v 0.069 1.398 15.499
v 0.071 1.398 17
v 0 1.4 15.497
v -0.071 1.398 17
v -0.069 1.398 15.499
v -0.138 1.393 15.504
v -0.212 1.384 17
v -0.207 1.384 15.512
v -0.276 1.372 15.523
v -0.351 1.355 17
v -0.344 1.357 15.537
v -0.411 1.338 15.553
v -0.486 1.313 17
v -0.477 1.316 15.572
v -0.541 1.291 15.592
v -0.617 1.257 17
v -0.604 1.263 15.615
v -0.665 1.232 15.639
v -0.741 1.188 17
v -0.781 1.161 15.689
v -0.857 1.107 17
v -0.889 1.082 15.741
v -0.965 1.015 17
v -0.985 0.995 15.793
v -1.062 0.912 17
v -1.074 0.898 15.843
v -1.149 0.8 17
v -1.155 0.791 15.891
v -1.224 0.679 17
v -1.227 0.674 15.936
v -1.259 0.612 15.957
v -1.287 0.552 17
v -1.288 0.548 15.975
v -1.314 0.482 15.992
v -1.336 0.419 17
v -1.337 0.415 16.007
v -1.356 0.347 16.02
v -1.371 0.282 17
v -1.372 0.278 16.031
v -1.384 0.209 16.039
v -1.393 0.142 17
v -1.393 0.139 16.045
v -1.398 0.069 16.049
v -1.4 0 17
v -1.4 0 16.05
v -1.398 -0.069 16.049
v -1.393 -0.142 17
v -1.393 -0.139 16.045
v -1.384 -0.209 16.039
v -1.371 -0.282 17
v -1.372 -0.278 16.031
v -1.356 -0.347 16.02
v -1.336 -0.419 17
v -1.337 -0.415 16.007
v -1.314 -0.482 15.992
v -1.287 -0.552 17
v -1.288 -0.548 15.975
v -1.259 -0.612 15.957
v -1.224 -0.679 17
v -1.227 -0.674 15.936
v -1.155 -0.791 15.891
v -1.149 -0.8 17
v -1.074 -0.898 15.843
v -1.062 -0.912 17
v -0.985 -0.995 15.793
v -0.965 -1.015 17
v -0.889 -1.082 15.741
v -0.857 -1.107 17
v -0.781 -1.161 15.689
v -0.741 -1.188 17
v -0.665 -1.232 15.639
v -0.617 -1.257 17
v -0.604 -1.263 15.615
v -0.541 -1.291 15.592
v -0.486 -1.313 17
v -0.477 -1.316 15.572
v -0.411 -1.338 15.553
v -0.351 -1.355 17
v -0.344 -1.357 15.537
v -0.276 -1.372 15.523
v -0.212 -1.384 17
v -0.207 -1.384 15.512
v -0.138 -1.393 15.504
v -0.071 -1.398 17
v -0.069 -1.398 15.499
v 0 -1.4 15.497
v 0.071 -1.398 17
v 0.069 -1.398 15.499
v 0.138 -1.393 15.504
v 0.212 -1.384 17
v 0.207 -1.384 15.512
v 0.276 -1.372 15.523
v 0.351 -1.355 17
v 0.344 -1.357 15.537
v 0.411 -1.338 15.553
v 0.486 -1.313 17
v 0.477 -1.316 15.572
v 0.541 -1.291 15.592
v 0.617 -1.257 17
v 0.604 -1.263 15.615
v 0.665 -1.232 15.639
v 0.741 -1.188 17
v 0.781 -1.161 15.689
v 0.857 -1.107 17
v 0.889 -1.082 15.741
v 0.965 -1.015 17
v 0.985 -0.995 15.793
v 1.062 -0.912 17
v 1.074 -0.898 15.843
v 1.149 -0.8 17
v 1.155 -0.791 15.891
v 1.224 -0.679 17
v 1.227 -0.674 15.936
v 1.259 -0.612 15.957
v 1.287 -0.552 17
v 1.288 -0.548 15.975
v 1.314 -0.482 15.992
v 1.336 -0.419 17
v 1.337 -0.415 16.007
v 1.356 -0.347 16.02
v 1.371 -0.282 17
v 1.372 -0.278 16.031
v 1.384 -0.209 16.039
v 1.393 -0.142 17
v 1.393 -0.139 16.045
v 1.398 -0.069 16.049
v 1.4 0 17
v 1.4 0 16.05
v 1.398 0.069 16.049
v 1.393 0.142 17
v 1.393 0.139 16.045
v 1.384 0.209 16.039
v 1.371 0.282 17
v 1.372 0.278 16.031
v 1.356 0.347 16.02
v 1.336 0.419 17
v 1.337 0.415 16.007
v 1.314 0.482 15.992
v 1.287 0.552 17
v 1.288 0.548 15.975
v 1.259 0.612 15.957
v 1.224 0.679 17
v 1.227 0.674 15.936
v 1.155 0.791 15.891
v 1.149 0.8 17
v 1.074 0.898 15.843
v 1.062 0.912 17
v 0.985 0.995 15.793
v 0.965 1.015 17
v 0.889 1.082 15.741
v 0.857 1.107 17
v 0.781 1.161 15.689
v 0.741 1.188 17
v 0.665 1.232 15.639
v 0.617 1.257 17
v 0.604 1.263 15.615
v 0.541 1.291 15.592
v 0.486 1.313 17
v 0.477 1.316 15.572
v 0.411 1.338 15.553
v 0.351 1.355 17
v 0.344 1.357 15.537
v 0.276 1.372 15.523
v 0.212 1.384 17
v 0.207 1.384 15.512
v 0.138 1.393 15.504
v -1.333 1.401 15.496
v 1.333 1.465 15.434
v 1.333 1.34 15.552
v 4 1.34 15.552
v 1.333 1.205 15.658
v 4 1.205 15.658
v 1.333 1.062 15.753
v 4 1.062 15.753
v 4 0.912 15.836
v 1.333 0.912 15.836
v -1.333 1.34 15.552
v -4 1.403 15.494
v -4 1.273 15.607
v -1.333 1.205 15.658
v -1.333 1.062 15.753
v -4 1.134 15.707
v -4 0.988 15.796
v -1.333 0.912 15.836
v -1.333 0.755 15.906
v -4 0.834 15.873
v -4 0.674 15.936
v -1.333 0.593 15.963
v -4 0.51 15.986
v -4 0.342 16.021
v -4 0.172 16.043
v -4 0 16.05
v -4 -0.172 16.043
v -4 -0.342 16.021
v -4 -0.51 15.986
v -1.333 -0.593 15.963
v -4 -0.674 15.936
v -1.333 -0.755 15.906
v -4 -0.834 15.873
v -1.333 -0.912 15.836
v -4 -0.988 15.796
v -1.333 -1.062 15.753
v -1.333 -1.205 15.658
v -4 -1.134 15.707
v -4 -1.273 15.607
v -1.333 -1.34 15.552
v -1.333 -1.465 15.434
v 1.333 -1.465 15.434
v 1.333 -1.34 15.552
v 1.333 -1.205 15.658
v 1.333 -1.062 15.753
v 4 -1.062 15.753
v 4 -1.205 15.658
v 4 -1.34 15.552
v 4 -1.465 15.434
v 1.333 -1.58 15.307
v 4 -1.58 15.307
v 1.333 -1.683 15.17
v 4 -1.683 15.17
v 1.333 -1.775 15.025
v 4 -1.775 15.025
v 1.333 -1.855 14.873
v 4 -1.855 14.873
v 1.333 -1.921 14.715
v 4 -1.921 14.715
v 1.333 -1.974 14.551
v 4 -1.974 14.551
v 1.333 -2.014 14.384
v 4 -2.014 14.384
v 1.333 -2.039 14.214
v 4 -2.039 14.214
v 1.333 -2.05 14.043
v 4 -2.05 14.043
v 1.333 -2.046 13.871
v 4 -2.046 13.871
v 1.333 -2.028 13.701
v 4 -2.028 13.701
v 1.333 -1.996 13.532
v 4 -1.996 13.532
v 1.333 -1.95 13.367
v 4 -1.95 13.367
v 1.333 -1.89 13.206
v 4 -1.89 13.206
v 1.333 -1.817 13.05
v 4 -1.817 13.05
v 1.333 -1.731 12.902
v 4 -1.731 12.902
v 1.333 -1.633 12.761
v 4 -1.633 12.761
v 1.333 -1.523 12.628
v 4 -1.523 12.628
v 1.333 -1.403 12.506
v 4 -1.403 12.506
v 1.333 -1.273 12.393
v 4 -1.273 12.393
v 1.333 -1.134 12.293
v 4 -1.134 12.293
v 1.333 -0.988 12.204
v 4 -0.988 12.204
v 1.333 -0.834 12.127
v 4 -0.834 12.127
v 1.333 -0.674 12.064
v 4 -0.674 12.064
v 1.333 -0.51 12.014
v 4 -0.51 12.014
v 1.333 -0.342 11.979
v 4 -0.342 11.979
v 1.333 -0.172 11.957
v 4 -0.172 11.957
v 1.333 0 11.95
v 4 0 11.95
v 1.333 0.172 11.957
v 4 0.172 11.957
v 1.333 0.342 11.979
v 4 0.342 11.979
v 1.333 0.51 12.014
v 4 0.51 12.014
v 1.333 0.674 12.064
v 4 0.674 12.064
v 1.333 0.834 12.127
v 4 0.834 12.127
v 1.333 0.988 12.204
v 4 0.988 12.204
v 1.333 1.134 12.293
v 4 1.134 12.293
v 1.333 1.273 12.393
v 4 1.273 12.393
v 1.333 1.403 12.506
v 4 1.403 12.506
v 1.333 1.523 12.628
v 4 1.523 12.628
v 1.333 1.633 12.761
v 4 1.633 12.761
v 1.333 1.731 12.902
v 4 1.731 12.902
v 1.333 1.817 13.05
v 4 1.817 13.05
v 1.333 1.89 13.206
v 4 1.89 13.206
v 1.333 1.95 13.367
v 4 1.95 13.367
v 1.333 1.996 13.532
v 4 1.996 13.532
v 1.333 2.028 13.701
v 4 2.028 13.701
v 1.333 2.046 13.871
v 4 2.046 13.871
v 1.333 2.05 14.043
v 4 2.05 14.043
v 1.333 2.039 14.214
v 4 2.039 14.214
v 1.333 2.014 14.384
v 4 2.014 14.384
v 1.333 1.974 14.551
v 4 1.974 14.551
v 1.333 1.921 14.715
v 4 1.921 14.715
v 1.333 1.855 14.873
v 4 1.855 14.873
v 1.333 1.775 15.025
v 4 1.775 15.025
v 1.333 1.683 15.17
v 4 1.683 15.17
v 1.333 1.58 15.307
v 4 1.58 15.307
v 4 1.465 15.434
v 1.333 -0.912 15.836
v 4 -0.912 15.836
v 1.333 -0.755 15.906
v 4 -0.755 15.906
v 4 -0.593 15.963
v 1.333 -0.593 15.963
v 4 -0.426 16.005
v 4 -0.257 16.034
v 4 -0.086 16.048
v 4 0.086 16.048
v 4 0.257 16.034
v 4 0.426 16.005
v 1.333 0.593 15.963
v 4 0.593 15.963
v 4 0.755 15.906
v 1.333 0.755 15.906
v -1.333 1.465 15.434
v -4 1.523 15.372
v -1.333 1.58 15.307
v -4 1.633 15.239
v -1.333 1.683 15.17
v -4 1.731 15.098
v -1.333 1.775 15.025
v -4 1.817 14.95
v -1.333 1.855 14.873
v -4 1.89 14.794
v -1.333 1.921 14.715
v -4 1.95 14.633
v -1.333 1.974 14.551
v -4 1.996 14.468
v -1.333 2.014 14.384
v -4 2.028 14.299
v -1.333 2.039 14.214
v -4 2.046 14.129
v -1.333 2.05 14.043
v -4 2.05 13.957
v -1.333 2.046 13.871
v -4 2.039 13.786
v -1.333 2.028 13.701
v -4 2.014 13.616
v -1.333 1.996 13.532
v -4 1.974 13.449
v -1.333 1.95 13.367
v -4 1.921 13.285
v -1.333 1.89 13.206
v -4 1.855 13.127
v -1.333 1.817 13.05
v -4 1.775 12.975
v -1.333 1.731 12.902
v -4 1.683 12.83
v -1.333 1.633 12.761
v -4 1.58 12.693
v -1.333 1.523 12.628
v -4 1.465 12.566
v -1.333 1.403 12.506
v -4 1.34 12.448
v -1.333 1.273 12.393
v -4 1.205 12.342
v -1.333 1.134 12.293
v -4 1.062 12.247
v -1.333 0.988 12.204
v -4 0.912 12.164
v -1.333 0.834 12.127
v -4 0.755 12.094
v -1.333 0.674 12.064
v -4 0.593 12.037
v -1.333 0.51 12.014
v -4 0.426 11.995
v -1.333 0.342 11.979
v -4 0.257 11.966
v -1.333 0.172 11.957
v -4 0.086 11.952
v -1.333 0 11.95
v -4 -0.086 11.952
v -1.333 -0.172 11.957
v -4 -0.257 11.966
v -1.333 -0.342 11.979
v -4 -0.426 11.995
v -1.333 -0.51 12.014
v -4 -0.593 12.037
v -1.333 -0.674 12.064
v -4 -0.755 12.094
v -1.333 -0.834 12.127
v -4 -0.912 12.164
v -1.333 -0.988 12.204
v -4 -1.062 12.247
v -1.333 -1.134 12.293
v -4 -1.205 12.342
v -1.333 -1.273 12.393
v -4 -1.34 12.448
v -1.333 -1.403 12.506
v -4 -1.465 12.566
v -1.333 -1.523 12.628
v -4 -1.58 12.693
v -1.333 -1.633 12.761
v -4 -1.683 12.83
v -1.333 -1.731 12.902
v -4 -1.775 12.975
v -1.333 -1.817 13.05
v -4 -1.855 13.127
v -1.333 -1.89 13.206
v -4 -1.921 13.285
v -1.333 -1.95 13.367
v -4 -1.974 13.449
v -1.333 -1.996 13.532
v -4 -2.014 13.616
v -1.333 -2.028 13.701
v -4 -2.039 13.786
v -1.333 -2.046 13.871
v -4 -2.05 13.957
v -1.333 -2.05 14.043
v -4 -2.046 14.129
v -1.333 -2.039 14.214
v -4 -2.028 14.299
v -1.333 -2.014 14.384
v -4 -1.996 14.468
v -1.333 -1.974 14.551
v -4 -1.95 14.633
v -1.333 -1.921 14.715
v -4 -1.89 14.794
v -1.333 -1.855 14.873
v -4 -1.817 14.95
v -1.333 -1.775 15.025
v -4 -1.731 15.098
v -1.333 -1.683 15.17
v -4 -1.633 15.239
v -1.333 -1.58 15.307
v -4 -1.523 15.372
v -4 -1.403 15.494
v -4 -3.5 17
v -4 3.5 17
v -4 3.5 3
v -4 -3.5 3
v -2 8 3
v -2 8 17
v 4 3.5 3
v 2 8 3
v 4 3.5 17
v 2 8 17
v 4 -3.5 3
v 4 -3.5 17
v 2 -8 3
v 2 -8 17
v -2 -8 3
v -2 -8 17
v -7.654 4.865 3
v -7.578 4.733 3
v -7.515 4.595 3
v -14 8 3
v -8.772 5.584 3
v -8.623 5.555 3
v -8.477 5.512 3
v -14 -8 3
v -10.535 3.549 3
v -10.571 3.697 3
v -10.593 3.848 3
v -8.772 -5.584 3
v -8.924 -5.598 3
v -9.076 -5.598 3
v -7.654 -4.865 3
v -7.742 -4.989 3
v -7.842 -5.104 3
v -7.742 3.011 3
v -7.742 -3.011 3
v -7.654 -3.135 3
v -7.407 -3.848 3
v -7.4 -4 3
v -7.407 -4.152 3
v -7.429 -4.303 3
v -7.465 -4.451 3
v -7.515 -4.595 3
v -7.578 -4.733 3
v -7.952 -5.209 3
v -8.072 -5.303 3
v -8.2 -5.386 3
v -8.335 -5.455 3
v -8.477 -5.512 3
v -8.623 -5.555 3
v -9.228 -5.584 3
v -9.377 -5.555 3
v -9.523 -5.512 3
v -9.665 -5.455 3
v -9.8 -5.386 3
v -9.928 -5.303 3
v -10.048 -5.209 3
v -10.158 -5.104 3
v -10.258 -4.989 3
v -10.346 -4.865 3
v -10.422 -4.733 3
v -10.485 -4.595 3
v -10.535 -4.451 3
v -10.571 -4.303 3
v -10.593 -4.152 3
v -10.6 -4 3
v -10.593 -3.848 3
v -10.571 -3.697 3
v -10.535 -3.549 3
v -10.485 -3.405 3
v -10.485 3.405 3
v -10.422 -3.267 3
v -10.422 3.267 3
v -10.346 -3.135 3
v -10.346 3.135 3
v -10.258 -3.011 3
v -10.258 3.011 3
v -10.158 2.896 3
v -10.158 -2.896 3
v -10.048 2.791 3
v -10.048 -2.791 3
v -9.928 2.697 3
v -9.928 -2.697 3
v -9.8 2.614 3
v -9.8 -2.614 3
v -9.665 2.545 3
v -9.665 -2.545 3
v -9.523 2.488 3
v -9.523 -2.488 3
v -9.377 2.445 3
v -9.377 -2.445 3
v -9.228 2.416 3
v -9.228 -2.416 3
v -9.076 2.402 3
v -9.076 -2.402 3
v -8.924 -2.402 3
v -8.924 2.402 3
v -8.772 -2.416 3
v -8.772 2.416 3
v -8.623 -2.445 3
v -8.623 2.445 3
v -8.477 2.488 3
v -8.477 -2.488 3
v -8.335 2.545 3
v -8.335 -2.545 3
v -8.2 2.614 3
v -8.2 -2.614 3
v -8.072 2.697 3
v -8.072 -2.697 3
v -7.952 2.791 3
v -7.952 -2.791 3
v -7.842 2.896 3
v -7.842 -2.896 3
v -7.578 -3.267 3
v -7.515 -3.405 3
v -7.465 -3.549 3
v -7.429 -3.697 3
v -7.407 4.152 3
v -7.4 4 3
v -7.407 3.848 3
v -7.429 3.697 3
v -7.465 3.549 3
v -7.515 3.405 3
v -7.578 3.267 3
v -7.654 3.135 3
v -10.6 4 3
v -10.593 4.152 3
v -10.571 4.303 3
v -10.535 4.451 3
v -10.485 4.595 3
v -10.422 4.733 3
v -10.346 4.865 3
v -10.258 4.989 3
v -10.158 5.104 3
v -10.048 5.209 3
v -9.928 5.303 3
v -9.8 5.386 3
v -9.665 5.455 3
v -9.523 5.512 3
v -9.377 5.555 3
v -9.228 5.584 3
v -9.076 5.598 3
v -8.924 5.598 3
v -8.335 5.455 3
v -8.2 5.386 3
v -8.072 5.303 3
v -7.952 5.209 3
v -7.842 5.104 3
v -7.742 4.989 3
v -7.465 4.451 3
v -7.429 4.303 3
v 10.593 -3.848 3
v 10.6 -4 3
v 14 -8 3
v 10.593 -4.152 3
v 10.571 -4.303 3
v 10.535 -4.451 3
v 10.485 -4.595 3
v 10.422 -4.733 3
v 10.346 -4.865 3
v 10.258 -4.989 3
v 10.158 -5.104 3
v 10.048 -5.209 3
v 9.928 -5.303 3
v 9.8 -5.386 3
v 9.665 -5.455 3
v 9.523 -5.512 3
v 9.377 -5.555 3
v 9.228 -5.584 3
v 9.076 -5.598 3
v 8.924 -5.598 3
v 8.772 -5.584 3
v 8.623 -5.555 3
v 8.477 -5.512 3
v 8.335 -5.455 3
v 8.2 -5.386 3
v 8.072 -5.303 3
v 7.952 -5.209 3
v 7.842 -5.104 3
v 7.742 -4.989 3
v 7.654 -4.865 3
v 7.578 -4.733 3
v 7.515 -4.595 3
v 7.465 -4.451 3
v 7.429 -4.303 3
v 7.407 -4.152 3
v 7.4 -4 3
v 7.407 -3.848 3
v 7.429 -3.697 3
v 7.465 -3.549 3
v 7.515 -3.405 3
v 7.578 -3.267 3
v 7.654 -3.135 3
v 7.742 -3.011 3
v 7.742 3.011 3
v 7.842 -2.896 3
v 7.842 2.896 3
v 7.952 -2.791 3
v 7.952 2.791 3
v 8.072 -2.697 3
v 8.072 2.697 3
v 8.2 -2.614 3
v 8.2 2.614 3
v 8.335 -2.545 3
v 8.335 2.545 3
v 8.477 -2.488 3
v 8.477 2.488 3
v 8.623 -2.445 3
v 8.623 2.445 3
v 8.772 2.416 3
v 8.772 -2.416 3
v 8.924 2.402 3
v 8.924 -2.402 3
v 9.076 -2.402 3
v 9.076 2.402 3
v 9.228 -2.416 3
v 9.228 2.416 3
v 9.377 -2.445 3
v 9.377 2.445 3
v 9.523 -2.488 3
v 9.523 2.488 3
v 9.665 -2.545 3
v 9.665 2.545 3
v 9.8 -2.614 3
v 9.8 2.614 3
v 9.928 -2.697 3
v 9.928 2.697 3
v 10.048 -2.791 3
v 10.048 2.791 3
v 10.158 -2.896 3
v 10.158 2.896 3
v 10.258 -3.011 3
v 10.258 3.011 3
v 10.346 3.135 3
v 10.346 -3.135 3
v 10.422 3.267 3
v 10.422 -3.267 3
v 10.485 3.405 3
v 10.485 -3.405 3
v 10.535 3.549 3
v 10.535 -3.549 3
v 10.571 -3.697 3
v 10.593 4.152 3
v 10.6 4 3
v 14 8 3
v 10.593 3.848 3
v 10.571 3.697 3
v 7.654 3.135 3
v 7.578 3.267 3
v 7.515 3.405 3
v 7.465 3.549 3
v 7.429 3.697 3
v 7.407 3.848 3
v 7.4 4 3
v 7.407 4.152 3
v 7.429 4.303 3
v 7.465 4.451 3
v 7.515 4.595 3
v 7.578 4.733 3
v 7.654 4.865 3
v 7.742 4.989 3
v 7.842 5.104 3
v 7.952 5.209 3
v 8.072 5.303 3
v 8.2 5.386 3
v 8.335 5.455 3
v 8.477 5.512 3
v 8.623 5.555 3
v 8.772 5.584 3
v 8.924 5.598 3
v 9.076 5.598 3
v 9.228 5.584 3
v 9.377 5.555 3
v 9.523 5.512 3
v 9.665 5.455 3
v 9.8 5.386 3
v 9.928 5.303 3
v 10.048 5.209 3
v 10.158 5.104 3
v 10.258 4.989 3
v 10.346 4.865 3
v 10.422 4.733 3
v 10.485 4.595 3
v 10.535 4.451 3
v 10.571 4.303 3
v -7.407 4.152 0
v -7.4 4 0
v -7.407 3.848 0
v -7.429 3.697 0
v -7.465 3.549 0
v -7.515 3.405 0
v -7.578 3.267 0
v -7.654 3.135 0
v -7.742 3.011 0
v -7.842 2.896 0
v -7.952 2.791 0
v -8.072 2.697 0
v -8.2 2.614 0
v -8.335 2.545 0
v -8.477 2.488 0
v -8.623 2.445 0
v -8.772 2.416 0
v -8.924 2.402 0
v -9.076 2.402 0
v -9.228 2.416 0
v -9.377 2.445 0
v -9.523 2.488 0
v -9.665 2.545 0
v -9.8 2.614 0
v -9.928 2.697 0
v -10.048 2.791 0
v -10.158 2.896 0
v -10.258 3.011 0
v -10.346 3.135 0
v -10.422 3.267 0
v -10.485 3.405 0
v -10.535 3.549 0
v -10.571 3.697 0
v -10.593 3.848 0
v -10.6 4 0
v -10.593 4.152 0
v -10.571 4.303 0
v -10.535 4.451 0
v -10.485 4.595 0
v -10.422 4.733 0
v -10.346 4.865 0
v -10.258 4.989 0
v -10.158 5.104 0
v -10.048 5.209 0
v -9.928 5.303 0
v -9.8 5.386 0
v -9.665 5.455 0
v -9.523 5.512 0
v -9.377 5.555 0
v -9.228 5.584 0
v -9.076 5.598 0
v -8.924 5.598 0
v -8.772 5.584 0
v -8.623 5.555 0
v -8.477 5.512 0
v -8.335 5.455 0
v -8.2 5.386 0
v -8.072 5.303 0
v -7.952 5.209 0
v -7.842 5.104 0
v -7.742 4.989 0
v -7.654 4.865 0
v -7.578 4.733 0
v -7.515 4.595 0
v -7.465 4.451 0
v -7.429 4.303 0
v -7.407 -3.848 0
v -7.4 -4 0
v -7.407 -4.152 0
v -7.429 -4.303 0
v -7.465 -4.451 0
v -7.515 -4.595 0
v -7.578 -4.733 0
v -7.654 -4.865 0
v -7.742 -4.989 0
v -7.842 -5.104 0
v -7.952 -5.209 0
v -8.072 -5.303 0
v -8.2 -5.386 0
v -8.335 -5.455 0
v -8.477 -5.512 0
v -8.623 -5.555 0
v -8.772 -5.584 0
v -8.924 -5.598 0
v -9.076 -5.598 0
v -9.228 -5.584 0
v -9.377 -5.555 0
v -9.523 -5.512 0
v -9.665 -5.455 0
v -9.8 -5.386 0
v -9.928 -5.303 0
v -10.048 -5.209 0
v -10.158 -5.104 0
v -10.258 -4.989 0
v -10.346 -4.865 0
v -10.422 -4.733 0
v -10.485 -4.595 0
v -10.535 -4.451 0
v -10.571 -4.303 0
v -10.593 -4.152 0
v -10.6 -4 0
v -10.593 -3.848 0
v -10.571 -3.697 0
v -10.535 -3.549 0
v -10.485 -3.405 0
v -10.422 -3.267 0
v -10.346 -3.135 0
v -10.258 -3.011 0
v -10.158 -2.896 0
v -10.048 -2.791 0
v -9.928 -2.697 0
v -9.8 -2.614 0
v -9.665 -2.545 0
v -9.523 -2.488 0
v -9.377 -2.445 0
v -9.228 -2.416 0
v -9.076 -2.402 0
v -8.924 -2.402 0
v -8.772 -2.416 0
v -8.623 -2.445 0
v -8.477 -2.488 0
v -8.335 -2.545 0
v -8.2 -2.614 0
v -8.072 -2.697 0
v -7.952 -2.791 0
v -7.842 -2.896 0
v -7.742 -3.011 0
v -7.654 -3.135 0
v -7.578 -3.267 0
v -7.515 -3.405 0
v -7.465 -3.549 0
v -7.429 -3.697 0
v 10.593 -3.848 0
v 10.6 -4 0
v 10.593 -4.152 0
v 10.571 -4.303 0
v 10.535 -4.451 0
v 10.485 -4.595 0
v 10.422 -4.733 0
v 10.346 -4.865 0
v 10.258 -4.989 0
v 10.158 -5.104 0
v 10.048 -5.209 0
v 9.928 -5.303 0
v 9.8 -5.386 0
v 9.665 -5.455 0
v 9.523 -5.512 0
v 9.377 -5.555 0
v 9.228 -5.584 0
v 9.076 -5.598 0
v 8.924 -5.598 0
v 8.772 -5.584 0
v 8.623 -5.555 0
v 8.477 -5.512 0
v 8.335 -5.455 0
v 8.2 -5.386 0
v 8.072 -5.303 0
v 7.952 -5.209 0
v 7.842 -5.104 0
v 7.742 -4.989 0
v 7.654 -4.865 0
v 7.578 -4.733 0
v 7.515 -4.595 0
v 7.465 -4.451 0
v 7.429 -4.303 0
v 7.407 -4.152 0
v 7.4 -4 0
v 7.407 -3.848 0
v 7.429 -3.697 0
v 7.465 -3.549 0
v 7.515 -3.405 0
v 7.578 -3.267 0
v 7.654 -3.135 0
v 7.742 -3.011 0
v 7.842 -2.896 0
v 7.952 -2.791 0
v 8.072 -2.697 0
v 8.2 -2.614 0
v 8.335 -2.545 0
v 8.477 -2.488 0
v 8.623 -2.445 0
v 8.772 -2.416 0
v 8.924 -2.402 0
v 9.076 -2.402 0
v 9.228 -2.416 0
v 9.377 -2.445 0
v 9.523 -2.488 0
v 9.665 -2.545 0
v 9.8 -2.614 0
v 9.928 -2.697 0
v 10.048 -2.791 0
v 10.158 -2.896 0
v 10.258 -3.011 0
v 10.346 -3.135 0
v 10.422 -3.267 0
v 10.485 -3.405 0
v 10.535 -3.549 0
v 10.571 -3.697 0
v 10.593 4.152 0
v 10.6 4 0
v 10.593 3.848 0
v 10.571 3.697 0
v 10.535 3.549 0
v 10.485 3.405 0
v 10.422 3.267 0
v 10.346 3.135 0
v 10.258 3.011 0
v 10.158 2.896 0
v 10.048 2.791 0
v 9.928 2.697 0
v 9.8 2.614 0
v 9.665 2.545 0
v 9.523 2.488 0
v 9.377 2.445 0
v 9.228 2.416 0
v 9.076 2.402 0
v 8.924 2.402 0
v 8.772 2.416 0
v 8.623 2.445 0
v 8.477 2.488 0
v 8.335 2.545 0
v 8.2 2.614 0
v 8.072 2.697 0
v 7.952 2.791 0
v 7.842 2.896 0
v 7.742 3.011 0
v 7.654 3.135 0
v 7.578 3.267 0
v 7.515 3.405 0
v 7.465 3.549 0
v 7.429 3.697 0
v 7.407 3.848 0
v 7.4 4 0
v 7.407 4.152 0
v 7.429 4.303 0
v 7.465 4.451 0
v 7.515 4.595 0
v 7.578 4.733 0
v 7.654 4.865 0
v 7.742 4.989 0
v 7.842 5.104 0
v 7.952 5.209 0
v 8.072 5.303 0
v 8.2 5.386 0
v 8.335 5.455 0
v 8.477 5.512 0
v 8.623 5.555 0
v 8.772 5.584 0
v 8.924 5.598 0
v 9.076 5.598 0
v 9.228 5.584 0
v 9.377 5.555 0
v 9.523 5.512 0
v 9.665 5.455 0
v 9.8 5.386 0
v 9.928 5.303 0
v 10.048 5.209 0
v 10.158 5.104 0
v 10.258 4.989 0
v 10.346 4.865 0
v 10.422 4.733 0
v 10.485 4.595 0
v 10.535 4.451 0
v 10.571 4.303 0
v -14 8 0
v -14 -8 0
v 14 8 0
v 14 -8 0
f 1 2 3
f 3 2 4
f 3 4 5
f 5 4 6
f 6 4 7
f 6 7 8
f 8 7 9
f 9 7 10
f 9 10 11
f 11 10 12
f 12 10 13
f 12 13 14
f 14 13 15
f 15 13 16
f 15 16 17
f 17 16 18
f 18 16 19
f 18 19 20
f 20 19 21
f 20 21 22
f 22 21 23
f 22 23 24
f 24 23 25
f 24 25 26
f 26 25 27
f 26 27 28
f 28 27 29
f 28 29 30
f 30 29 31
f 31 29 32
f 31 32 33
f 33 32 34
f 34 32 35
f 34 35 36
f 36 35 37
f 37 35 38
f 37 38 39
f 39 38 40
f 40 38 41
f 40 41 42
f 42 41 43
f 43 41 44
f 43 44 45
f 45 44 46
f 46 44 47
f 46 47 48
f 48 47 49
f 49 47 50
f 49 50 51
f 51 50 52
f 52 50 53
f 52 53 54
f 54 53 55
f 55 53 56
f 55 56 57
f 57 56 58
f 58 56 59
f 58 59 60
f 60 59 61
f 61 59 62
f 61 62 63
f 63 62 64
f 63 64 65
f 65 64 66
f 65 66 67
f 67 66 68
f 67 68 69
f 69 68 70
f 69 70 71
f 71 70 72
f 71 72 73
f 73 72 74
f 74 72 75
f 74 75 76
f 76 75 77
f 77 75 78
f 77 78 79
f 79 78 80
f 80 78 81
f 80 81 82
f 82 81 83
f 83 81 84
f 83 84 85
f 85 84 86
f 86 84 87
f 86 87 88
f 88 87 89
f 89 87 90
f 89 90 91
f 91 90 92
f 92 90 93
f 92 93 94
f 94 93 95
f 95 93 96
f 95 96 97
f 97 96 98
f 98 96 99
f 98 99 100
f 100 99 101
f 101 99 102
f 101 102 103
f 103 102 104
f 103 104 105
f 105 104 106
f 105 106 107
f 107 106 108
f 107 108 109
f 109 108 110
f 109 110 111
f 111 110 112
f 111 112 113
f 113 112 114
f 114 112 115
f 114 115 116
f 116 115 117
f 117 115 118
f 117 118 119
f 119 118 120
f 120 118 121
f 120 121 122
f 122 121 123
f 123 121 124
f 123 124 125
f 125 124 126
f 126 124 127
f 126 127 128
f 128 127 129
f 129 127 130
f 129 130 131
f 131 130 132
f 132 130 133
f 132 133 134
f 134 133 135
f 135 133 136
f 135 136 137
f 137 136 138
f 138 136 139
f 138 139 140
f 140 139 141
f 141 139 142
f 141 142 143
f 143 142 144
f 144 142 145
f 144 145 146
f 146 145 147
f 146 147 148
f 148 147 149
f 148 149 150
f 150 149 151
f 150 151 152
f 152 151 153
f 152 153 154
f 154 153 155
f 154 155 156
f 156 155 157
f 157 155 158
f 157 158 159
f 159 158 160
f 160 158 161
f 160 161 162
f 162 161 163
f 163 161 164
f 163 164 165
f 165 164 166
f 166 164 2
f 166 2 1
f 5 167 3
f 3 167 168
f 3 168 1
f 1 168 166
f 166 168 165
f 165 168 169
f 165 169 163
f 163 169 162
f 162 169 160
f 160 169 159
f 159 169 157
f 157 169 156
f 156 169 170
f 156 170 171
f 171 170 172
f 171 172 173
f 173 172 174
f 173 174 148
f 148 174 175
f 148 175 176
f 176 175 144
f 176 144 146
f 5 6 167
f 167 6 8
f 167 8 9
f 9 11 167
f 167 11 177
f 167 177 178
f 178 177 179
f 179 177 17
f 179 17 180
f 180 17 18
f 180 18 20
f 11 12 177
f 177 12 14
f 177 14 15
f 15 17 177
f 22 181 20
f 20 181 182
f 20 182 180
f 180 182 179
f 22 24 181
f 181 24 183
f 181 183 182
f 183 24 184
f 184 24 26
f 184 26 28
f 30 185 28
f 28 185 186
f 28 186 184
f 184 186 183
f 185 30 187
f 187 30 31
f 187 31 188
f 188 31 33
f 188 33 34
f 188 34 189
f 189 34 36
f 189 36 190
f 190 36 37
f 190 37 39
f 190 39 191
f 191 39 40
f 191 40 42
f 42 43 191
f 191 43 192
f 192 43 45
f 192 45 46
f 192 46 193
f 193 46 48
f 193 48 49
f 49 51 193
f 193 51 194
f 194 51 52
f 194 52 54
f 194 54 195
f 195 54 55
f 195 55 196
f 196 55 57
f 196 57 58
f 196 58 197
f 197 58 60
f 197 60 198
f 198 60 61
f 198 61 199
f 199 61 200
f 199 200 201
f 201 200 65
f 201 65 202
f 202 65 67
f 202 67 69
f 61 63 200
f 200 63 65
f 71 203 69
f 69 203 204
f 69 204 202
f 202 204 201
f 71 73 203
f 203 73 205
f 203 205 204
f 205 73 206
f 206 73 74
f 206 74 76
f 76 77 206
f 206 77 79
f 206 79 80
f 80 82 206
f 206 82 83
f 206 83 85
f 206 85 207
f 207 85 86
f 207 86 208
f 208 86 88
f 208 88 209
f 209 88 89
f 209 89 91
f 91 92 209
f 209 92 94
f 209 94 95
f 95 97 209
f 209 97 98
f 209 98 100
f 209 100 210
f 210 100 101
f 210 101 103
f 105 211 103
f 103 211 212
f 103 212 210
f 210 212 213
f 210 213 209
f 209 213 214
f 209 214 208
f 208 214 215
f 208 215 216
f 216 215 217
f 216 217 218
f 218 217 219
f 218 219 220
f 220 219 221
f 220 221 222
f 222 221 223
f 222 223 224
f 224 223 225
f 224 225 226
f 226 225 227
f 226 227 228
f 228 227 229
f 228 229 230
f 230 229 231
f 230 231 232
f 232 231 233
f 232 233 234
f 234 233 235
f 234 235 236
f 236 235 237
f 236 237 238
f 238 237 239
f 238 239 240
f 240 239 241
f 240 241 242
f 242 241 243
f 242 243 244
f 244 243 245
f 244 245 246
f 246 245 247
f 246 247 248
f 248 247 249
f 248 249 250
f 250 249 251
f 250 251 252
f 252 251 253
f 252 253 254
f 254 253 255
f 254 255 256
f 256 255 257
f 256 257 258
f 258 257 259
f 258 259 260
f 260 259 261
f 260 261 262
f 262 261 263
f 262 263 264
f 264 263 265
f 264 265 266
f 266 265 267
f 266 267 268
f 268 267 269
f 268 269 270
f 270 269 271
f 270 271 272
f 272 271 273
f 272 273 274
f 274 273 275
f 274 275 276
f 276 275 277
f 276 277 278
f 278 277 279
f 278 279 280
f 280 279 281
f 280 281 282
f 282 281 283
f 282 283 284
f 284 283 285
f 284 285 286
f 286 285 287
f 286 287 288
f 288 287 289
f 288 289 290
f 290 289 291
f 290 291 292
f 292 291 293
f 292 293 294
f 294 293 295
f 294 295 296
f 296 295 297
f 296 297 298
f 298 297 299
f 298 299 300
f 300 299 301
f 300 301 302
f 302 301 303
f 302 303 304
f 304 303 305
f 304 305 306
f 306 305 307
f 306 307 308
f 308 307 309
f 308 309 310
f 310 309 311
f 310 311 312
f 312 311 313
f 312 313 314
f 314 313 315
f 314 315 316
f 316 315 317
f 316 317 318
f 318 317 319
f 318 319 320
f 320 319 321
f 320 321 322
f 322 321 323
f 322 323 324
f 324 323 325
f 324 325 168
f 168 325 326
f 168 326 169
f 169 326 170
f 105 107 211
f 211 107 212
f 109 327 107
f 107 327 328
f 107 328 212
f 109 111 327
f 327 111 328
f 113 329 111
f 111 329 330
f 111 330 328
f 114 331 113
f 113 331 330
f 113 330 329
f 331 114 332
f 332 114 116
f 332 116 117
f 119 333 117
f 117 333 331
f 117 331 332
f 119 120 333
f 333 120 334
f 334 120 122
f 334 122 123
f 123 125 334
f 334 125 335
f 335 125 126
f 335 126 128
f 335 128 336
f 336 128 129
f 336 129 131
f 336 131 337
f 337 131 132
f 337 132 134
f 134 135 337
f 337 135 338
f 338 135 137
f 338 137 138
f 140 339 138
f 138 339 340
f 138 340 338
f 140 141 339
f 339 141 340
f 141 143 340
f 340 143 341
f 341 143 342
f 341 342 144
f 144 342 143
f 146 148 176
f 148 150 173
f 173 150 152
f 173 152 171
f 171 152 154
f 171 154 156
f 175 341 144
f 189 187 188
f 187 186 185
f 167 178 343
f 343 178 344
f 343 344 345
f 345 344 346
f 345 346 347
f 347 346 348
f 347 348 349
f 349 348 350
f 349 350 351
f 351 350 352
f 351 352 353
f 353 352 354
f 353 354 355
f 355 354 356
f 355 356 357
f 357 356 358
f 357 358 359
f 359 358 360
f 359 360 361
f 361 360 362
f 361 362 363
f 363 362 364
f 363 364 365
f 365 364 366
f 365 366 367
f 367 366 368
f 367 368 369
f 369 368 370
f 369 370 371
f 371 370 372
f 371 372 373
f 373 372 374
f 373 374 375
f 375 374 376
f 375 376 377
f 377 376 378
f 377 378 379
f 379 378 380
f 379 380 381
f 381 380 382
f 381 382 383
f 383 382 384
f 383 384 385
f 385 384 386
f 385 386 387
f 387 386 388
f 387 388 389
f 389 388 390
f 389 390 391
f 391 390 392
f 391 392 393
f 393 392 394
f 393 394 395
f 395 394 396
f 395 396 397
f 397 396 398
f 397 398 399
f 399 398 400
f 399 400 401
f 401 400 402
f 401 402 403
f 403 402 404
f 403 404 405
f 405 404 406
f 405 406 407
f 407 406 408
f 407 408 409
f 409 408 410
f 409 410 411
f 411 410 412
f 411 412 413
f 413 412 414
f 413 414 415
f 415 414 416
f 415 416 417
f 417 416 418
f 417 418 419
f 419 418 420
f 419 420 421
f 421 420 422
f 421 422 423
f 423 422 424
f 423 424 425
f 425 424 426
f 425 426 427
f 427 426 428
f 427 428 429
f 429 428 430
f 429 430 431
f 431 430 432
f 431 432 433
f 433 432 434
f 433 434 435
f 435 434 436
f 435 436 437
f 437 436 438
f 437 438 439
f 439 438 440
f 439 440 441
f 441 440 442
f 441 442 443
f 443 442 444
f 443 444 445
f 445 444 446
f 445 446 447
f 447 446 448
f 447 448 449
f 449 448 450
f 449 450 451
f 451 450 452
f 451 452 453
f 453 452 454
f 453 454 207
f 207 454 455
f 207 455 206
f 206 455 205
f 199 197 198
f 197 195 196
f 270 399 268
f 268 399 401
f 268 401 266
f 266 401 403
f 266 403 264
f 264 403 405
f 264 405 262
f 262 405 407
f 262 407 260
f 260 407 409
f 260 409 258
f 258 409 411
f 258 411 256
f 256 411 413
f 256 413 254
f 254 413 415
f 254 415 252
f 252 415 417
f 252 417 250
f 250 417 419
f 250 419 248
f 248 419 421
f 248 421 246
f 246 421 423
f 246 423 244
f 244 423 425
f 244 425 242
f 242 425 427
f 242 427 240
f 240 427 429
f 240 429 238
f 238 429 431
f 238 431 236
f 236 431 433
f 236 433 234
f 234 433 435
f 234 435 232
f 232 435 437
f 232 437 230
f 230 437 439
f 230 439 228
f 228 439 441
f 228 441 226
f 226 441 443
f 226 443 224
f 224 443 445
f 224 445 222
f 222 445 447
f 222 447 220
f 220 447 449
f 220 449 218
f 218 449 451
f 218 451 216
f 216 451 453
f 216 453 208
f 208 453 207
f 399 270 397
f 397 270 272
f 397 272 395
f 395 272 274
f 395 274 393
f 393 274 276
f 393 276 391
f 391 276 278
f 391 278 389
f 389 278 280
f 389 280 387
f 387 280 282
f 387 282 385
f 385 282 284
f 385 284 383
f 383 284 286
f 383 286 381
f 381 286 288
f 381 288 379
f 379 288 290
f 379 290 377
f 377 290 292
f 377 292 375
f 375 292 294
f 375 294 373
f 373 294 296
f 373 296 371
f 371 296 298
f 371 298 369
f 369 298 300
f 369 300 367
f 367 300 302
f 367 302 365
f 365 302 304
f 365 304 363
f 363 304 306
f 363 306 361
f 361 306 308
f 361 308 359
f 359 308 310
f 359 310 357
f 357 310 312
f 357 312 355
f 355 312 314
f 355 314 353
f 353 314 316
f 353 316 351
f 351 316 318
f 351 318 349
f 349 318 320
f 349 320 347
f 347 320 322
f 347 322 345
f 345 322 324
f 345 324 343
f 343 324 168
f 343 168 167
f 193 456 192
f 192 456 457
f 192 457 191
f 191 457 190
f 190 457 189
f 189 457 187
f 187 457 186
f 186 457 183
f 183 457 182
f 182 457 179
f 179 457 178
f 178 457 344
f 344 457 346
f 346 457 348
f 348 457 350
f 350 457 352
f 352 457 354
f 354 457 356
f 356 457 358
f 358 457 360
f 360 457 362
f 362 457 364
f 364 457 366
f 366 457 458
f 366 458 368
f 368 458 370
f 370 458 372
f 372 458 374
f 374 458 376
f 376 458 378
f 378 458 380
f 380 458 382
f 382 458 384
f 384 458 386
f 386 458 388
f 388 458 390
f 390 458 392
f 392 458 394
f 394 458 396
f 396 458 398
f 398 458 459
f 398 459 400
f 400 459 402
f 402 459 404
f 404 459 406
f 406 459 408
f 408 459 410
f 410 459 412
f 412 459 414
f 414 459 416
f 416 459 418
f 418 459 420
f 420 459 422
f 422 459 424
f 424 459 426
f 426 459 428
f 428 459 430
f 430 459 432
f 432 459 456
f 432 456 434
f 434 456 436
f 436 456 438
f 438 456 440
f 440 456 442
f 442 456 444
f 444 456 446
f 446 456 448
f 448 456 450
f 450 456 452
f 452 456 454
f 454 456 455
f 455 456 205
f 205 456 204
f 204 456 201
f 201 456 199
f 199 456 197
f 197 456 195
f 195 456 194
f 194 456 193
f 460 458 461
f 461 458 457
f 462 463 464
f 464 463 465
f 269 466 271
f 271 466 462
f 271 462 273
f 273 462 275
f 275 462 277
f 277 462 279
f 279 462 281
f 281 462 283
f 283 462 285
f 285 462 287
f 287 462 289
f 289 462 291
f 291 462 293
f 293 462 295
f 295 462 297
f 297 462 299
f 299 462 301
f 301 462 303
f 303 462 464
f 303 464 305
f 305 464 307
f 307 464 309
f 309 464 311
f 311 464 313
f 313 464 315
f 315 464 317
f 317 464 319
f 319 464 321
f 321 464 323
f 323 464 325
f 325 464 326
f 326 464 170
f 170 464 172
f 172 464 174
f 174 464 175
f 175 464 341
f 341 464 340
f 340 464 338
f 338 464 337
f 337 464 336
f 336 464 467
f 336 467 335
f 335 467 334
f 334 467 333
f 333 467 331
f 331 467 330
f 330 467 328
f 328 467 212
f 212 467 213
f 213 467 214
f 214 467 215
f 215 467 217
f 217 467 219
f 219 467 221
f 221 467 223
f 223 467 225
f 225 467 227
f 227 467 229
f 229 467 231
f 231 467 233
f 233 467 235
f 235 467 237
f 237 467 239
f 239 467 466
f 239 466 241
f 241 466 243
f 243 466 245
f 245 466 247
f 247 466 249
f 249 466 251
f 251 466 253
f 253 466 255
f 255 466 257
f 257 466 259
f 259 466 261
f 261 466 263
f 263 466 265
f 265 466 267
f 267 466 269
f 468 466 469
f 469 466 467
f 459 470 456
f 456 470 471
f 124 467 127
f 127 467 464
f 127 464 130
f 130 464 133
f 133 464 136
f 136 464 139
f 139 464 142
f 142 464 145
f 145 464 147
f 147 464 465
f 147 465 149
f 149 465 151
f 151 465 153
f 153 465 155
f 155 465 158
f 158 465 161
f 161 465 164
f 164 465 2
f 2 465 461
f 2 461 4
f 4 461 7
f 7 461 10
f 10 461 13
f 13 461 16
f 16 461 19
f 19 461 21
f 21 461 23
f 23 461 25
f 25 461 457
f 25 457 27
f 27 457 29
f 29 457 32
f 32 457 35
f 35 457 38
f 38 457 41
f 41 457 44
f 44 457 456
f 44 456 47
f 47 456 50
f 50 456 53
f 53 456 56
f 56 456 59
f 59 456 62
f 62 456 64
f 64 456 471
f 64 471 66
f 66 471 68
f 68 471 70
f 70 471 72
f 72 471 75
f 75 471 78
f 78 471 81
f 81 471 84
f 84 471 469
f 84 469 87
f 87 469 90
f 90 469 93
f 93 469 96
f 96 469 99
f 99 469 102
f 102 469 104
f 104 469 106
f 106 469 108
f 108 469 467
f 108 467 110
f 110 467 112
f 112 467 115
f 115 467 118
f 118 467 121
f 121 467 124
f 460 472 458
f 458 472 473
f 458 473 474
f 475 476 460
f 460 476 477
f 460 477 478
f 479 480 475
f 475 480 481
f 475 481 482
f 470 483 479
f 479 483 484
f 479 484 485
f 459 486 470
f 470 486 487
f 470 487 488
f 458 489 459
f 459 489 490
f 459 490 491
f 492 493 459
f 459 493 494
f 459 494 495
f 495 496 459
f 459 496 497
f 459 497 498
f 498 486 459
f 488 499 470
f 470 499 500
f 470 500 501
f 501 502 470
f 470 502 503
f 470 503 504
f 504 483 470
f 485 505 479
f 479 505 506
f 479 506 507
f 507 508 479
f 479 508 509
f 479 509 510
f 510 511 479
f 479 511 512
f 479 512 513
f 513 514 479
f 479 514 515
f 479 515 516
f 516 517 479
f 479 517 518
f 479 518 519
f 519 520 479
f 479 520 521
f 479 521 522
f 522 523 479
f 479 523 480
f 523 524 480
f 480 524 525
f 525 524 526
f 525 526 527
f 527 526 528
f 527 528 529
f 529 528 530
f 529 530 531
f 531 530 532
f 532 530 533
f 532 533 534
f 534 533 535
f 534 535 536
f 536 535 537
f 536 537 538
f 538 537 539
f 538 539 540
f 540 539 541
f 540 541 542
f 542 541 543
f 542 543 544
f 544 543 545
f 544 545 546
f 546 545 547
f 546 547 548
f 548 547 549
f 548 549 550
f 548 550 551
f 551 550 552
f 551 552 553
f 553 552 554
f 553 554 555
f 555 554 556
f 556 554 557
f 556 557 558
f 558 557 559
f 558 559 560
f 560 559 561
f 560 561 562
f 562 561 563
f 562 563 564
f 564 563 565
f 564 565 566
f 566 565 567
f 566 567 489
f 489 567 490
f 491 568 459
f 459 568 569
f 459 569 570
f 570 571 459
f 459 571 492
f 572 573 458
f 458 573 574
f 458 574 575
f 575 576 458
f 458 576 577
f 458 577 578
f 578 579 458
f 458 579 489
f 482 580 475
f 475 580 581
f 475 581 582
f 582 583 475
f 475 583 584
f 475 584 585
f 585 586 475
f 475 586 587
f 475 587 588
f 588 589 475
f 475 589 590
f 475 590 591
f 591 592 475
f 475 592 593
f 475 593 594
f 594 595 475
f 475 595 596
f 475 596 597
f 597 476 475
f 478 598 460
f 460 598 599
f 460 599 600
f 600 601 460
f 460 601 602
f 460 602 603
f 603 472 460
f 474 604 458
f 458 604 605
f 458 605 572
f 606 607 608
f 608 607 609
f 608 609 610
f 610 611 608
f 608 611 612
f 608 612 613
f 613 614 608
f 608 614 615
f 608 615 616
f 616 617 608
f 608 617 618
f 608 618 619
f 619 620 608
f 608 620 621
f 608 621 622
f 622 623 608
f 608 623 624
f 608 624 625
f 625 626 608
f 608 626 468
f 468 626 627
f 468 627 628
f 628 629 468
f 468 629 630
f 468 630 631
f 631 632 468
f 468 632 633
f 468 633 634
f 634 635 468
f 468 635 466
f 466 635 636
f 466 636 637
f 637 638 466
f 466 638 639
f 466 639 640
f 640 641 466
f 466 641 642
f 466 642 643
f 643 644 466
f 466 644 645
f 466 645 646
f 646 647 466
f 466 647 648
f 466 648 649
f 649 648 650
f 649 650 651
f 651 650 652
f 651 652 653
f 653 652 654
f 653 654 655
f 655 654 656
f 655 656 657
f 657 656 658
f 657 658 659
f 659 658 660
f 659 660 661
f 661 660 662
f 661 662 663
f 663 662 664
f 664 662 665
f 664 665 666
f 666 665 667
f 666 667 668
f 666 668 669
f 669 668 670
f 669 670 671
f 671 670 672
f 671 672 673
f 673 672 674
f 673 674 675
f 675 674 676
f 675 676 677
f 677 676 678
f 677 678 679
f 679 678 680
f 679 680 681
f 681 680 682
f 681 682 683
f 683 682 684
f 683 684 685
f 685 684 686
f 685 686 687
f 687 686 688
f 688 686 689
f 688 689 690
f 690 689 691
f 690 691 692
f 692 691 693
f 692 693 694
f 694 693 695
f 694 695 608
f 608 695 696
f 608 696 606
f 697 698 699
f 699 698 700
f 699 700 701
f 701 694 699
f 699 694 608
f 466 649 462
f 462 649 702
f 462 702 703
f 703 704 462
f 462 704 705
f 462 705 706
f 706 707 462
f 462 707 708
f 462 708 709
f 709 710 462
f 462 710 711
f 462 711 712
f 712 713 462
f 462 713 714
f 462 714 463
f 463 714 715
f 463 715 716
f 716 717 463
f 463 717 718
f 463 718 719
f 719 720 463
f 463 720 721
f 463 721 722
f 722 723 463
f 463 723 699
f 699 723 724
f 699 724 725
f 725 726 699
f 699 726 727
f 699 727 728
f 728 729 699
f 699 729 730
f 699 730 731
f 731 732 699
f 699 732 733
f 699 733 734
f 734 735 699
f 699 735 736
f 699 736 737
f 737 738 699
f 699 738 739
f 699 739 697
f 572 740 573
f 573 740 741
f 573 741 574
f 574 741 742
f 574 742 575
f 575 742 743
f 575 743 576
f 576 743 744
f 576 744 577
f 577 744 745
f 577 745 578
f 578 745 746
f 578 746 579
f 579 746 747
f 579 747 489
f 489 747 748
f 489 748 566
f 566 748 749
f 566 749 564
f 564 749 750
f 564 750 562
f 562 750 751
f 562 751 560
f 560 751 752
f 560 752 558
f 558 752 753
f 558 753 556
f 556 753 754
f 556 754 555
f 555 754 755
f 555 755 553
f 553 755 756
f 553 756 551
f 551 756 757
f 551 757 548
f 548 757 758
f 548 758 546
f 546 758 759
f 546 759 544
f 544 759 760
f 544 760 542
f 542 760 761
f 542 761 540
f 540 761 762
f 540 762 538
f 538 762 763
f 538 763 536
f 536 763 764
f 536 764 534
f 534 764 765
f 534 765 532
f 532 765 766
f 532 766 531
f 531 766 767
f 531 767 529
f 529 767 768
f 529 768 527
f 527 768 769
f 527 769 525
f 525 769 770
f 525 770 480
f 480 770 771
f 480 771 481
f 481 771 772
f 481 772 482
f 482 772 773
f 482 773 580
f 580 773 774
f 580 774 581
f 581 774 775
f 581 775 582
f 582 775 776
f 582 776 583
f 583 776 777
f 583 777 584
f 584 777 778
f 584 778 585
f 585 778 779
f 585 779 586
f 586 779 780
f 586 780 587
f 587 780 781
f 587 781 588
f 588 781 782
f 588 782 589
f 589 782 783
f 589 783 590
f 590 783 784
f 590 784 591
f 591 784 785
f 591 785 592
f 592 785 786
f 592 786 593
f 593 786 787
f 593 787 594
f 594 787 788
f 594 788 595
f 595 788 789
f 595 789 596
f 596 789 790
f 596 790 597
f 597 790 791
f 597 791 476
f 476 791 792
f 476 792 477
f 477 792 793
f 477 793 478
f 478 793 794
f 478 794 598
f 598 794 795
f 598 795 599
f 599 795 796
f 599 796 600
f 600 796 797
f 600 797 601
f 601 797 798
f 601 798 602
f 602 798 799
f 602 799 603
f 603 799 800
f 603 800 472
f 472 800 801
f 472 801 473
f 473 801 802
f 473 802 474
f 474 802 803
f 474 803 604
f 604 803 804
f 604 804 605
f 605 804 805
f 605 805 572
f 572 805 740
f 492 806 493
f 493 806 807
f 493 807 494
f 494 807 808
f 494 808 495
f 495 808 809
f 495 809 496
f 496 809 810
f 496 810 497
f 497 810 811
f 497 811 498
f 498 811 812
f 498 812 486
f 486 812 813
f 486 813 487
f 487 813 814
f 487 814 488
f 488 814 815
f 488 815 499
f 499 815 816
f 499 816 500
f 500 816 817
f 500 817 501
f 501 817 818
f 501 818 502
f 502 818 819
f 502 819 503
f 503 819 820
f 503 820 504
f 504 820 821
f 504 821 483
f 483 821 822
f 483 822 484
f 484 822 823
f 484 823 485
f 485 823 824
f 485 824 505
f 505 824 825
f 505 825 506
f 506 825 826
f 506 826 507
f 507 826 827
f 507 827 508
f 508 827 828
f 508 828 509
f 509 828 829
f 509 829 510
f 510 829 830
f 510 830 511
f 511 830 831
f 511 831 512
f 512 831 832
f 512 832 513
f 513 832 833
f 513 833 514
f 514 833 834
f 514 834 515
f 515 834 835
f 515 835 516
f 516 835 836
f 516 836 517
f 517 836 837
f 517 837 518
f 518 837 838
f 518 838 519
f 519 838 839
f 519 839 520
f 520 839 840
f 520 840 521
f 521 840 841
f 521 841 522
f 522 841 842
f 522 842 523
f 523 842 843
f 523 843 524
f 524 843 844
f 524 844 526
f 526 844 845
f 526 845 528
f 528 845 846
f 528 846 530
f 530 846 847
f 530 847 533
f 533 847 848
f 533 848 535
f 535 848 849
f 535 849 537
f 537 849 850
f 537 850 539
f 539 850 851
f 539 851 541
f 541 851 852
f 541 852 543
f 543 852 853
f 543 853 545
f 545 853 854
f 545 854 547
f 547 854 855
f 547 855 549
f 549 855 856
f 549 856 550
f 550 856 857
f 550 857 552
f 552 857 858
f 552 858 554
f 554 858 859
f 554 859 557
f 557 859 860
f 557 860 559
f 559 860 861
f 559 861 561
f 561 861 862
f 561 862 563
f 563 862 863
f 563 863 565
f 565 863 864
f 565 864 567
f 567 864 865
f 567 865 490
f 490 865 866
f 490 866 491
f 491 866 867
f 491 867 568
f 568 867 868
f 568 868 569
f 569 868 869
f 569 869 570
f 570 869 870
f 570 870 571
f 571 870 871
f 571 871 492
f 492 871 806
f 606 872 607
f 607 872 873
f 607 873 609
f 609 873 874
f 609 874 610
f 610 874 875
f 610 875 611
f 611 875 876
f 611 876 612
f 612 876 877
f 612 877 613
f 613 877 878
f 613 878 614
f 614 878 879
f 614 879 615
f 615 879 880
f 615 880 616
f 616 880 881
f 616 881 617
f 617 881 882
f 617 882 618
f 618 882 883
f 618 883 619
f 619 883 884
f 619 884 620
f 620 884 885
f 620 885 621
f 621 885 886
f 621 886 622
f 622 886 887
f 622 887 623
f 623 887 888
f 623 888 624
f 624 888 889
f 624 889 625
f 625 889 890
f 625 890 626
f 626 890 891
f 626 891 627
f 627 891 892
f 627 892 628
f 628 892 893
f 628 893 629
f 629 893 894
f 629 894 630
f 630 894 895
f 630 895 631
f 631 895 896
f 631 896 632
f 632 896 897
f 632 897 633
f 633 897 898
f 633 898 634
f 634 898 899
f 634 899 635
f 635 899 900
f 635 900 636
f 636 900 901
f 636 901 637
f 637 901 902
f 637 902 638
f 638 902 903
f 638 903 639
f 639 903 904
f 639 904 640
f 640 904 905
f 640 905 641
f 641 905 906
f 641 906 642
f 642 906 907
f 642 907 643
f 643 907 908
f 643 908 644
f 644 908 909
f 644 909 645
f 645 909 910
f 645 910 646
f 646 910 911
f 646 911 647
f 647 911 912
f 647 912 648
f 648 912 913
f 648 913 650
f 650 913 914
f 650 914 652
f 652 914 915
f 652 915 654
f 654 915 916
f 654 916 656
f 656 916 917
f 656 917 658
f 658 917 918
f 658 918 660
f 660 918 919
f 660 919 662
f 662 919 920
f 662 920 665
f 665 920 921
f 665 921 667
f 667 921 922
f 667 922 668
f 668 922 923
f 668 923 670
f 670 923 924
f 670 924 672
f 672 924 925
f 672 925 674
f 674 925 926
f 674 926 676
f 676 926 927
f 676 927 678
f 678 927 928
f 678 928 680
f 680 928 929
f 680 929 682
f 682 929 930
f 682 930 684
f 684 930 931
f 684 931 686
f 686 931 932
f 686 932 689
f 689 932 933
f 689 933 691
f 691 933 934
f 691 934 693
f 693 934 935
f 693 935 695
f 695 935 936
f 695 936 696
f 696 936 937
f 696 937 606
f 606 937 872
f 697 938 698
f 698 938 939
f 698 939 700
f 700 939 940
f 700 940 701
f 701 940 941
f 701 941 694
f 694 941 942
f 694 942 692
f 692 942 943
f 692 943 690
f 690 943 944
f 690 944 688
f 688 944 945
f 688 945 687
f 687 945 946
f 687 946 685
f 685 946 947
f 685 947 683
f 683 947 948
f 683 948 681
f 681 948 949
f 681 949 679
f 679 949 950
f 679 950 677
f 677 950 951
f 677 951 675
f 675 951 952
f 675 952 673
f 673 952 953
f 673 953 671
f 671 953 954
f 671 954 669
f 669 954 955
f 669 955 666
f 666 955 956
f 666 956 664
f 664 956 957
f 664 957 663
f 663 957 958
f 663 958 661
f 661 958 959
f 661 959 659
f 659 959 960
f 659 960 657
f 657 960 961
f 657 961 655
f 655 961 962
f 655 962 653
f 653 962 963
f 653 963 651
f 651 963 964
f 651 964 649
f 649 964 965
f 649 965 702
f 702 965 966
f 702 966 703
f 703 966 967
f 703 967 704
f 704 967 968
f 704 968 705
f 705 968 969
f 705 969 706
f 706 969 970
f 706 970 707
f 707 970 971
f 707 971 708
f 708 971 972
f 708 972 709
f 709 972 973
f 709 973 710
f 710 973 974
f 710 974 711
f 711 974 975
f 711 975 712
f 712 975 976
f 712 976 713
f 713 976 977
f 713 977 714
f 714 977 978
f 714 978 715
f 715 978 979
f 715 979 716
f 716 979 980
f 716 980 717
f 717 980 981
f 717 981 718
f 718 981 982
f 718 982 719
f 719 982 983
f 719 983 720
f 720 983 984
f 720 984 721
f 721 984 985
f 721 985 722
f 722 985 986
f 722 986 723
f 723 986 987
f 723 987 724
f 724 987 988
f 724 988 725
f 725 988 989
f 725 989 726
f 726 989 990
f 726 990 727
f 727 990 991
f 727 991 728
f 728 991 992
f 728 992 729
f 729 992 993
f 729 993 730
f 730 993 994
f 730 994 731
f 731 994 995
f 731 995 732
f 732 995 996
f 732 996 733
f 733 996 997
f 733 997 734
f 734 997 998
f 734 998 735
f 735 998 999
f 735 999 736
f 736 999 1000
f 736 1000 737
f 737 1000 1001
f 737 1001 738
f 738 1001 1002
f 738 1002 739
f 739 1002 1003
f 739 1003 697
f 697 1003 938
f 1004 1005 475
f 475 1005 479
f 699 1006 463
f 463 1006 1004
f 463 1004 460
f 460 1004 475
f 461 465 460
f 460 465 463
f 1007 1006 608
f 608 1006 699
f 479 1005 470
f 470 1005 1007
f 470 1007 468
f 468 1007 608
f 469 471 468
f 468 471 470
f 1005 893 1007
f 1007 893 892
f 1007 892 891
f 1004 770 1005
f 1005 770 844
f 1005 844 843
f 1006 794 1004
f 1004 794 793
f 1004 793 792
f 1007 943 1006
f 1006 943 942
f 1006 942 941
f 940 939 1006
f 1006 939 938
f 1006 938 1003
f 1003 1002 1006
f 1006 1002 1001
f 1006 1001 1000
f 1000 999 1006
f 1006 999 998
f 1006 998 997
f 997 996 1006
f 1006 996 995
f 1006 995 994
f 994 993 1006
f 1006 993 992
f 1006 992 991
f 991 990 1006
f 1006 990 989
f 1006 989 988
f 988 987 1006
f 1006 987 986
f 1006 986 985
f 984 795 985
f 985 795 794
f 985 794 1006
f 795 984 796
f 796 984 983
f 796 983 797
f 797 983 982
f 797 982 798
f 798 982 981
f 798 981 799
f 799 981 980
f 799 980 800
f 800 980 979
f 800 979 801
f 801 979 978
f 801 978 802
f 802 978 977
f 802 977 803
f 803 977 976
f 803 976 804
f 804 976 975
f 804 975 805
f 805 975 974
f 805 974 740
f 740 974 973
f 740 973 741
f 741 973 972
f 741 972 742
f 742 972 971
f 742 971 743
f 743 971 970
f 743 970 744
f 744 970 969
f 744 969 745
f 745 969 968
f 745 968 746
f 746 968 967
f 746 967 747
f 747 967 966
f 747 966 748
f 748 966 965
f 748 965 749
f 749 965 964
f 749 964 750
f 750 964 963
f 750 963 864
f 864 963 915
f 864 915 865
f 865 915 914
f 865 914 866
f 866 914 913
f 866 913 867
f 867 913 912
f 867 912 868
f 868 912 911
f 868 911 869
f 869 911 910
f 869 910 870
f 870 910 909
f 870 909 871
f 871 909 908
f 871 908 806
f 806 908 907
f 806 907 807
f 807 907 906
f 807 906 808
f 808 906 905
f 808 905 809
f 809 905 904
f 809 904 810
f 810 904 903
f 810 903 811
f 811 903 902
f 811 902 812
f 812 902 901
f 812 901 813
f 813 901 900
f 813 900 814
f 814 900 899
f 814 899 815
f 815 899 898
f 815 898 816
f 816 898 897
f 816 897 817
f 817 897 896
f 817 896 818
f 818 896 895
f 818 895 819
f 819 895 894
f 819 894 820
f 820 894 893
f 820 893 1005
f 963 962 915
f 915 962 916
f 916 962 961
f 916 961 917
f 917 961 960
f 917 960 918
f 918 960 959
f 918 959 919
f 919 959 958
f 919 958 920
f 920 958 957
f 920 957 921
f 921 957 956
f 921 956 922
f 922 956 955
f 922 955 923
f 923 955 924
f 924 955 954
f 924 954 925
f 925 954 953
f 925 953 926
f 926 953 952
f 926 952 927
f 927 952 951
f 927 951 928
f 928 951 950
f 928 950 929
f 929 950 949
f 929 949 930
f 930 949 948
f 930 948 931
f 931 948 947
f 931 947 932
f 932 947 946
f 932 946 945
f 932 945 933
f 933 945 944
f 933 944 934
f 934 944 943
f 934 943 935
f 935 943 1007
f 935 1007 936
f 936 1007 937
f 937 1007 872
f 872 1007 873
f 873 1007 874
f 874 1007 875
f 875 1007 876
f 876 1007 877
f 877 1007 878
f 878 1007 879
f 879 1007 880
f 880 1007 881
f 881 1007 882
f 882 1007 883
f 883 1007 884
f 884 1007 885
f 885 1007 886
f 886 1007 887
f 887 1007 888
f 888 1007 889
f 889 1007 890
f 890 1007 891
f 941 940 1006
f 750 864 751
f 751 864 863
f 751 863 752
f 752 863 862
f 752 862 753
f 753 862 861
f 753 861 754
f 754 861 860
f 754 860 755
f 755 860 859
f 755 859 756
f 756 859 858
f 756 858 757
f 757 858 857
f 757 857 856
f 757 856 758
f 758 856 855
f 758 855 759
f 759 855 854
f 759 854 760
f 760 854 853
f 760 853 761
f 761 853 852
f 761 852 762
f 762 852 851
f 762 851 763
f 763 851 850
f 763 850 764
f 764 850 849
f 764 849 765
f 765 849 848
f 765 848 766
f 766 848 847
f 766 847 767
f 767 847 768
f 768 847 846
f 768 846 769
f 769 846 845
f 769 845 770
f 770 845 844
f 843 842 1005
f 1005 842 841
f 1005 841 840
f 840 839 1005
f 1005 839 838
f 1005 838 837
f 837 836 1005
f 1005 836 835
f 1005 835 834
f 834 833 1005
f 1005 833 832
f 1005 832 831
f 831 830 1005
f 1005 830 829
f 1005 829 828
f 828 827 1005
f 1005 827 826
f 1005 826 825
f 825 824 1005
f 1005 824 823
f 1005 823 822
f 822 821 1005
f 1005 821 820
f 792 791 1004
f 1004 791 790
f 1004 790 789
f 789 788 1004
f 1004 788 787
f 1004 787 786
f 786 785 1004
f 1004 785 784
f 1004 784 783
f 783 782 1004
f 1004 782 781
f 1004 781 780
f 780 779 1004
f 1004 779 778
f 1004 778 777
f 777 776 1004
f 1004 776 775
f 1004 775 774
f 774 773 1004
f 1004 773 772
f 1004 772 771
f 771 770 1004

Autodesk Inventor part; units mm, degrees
ref_plane "YZ Plane" through (0, 0, 0) normal (1, 0, 0) x (0, 1, 0)
ref_plane "XZ Plane" through (0, 0, 0) normal (0, 1, 0) x (-1, 0, 0)
ref_plane "XY Plane" through (0, 0, 0) normal (0, 0, 1) x (1, 0, 0)
sketch "Sketch1" plane through (0, 0, 0) normal (0, 0, 1) x (1, 0, 0)
  line L0 (-14, 8) -> (14, 8)
  line L1 (14, 8) -> (14, -8)
  line L2 (14, -8) -> (-14, -8)
  line L3 (-14, -8) -> (-14, 8)
  circle A0 centre (-9, 4) radius 1.6
  circle A1 centre (-9, -4) radius 1.6
  circle A2 centre (9, -4) radius 1.6
  circle A3 centre (9, 4) radius 1.6
  point P0 (0, 0)
  point P1 (0, 8)
  point P2 (-14, 0)
  dimension "d0" = 28
  dimension "d1" = 16
  dimension "d2" = 18
  dimension "d3" = 9
  dimension "d4" = 8
  dimension "d5" = 4
  dimension "d6" = 3.2
extrude "Extrusion1" add sketch "Sketch1" along normal blind 3
sketch "Sketch2" plane through (0, 0, 3) normal (0, 0, 1) x (1, 0, 0)
  line L0 (-4, -3.5) -> (-4, 3.5)
  line L1 (-4, 3.5) -> (-2, 8)
  line L2 (14, 8) -> (-14, 8) projected
  line L3 (-2, 8) -> (2, 8)
  line L4 (2, 8) -> (4, 3.5)
  line L5 (4, 3.5) -> (4, -3.5)
  line L6 (14, 8) -> (-14, 8) projected
  line L7 (4, -3.5) -> (2, -8)
  line L8 (-14, -8) -> (14, -8) projected
  line L9 (2, -8) -> (-2, -8)
  line L10 (-2, -8) -> (-4, -3.5)
  point P0 (0, 0)
  point P1 (-4, 0)
  point P2 (4, 0)
  point P3 (0, 8)
  dimension "d9" = 8
  dimension "d10" = 4
  dimension "d11" = 7
extrude "Extrusion2" add sketch "Sketch2" along normal blind 14
sketch "Sketch3" plane through (-4, -3.5, 3) normal (-1, 0, 0) x (0, 0, 1)
  circle A0 centre (11, 3.5) radius 2.05
  line L0 (14, 7) -> (14, 0) projected
  point P0 (-3, 3.5)
  point P1 (14, 3.5)
  dimension "d14" = 3
  dimension "d15" = 4.1
extrude "Extrusion3" cut sketch "Sketch3" against normal through all
sketch "Sketch4" plane through (0, 0, 17) normal (0, 0, 1) x (1, 0, 0)
  circle A0 centre (0, 0) radius 1.4
  dimension "d18" = 2.8
extrude "Extrusion4" cut sketch "Sketch4" against normal blind 3
equation "\"d3\" = 0.5 * d2"
equation "\"d5\" = 0.5 * d4"
properties part number "Guider"
